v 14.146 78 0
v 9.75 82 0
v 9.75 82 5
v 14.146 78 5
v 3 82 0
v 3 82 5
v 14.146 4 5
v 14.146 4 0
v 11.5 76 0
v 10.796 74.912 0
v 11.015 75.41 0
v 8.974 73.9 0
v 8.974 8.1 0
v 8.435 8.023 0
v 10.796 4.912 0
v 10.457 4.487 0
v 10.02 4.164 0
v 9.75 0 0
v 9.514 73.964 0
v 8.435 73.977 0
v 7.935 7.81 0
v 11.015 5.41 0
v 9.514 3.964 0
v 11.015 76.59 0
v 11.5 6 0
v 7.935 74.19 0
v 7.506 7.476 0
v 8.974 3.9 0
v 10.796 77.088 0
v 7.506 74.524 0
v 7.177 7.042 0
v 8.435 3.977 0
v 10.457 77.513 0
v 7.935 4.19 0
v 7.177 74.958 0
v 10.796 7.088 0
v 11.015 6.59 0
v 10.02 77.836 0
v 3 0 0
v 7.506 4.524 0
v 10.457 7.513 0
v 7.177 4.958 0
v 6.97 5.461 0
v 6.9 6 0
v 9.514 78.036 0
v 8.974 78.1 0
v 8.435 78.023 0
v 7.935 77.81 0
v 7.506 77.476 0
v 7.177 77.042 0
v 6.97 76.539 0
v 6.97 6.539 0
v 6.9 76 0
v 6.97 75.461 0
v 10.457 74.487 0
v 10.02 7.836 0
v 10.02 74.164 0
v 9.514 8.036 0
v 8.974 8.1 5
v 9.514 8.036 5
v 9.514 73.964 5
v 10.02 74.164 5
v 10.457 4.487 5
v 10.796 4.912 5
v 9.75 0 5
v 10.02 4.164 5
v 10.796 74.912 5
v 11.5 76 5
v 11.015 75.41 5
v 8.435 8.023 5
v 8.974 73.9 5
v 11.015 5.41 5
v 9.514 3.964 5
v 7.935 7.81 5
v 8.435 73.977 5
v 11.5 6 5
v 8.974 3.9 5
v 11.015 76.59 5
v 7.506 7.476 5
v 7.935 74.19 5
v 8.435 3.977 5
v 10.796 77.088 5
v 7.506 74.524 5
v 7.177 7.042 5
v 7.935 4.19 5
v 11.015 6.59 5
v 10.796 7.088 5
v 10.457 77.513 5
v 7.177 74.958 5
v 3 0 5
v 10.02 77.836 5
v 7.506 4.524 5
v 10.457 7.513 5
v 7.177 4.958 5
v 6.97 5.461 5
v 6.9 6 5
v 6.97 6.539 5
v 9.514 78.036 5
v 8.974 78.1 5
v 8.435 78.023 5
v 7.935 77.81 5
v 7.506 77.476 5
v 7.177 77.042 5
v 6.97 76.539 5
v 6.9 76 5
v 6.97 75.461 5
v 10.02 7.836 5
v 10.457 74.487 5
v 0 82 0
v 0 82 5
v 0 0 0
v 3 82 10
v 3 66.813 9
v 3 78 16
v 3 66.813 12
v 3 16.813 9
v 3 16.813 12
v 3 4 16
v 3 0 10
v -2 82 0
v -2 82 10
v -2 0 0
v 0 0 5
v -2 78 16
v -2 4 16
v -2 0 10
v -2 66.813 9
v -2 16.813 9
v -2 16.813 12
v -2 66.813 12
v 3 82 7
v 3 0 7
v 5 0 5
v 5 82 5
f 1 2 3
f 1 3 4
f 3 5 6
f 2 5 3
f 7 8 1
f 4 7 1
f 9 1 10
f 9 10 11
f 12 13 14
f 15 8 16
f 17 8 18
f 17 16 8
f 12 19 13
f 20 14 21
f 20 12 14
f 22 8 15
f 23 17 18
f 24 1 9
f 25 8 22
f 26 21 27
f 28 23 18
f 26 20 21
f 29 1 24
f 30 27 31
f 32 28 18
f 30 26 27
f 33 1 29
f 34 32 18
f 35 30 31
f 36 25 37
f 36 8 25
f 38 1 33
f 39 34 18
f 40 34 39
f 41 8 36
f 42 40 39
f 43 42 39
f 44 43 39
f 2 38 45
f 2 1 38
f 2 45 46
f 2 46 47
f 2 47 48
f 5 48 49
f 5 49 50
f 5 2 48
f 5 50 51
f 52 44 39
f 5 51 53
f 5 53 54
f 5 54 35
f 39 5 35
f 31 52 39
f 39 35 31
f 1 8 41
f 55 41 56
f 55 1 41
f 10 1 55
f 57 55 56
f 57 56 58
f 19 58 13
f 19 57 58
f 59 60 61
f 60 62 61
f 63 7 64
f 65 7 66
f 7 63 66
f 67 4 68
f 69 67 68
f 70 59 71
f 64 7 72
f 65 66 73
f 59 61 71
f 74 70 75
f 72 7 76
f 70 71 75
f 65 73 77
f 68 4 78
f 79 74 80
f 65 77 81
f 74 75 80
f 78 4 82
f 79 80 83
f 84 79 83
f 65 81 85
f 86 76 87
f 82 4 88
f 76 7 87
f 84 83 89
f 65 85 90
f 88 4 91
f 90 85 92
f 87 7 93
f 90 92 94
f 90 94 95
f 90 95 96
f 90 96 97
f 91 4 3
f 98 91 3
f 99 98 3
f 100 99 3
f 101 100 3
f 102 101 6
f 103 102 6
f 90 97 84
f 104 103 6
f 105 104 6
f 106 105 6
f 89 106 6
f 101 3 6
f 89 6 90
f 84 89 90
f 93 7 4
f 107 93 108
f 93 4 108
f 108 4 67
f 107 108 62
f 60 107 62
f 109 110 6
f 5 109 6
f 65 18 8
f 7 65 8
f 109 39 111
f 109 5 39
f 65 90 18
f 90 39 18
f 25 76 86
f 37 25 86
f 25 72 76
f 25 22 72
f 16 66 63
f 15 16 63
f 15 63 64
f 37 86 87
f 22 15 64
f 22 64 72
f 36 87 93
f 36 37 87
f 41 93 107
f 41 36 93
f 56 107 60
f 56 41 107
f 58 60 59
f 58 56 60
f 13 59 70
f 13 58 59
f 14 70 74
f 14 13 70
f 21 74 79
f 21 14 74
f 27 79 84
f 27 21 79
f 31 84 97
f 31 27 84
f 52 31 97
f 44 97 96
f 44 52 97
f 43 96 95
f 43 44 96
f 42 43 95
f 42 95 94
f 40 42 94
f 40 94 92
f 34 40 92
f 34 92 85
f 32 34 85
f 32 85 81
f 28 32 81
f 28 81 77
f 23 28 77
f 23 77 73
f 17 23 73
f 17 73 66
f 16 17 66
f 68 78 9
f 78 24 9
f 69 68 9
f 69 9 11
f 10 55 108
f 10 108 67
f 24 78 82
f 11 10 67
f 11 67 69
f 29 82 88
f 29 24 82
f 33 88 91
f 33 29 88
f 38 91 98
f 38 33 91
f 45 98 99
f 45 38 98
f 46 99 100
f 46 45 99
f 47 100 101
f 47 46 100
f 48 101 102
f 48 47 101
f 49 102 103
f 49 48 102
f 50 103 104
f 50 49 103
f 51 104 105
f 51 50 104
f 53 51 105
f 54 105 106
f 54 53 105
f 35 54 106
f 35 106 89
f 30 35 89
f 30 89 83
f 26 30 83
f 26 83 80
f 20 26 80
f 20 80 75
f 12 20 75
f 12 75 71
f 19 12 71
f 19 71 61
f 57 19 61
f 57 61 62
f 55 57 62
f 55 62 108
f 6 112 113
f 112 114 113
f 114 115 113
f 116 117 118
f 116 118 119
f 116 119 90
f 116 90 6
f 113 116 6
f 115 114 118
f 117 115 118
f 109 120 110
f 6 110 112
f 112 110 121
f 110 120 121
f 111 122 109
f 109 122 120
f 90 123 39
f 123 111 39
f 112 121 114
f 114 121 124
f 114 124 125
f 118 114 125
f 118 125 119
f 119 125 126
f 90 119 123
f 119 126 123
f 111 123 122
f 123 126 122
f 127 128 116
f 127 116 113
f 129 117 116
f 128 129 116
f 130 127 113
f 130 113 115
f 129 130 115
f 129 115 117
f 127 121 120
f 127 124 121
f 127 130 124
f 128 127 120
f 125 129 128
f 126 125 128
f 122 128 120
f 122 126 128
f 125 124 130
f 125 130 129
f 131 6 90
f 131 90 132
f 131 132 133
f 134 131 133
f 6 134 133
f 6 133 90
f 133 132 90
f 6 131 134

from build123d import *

# Parameters (mm, degrees)
PAD002_DEPTH = 82
SKETCH001_W  = 50
SKETCH001_H  = 3
PAD001_DEPTH = 5
SKETCH_R     = 2.1
PAD_DEPTH    = 5
POCKET_DEPTH = 6


with BuildPart() as pad002:
    # Sketch002 → Pad002 (new body)
    with BuildSketch(Plane(origin=(3, 0, 5), x_dir=(1, 0, 0), z_dir=(0, -1, 0))):
        Polygon((0, 0), (0, 2), (2, 0), align=None)
    extrude(amount=-PAD002_DEPTH)


with BuildPart() as pad001:
    # Sketch001 → Pad001 (new body)
    with BuildSketch(Plane.YZ.offset(-2)):
        Polygon((0, 0), (82, 0), (82, 10), (78, 16), (4, 16), (0, 10), align=None)
        with Locations((41.813425, 10.5)):
            Rectangle(SKETCH001_W, SKETCH001_H, mode=Mode.SUBTRACT)
    extrude(amount=PAD001_DEPTH)


with BuildPart() as pocket:
    # Sketch → Pad (new body)
    with BuildSketch(Plane.XY):
        Polygon((0, 82), (0, 0), (9.750427, 0), (14.14649, 4), (14.14649, 78), (9.750427, 82), align=None)
        with Locations((9, 6)):
            Circle(SKETCH_R, mode=Mode.SUBTRACT)
        with Locations((9, 76)):
            Circle(SKETCH_R, mode=Mode.SUBTRACT)
    extrude(amount=PAD_DEPTH)

    # Fusion: union Pad001
    add(pad001.part)

    # Sketch003 → Pocket (cut)
    with BuildSketch(Plane(origin=(0, 0, 0), x_dir=(1, 0, 0), z_dir=(0, 0, -1))):
        Polygon((10.103576, -4.3), (11.5, -6), (10.103576, -7.7), align=None)
        Polygon((10.103576, -74.3), (10.103576, -77.7), (11.5, -76), align=None)
    extrude(amount=-POCKET_DEPTH, mode=Mode.SUBTRACT)


solid = Compound([pad002.part, pocket.part])
